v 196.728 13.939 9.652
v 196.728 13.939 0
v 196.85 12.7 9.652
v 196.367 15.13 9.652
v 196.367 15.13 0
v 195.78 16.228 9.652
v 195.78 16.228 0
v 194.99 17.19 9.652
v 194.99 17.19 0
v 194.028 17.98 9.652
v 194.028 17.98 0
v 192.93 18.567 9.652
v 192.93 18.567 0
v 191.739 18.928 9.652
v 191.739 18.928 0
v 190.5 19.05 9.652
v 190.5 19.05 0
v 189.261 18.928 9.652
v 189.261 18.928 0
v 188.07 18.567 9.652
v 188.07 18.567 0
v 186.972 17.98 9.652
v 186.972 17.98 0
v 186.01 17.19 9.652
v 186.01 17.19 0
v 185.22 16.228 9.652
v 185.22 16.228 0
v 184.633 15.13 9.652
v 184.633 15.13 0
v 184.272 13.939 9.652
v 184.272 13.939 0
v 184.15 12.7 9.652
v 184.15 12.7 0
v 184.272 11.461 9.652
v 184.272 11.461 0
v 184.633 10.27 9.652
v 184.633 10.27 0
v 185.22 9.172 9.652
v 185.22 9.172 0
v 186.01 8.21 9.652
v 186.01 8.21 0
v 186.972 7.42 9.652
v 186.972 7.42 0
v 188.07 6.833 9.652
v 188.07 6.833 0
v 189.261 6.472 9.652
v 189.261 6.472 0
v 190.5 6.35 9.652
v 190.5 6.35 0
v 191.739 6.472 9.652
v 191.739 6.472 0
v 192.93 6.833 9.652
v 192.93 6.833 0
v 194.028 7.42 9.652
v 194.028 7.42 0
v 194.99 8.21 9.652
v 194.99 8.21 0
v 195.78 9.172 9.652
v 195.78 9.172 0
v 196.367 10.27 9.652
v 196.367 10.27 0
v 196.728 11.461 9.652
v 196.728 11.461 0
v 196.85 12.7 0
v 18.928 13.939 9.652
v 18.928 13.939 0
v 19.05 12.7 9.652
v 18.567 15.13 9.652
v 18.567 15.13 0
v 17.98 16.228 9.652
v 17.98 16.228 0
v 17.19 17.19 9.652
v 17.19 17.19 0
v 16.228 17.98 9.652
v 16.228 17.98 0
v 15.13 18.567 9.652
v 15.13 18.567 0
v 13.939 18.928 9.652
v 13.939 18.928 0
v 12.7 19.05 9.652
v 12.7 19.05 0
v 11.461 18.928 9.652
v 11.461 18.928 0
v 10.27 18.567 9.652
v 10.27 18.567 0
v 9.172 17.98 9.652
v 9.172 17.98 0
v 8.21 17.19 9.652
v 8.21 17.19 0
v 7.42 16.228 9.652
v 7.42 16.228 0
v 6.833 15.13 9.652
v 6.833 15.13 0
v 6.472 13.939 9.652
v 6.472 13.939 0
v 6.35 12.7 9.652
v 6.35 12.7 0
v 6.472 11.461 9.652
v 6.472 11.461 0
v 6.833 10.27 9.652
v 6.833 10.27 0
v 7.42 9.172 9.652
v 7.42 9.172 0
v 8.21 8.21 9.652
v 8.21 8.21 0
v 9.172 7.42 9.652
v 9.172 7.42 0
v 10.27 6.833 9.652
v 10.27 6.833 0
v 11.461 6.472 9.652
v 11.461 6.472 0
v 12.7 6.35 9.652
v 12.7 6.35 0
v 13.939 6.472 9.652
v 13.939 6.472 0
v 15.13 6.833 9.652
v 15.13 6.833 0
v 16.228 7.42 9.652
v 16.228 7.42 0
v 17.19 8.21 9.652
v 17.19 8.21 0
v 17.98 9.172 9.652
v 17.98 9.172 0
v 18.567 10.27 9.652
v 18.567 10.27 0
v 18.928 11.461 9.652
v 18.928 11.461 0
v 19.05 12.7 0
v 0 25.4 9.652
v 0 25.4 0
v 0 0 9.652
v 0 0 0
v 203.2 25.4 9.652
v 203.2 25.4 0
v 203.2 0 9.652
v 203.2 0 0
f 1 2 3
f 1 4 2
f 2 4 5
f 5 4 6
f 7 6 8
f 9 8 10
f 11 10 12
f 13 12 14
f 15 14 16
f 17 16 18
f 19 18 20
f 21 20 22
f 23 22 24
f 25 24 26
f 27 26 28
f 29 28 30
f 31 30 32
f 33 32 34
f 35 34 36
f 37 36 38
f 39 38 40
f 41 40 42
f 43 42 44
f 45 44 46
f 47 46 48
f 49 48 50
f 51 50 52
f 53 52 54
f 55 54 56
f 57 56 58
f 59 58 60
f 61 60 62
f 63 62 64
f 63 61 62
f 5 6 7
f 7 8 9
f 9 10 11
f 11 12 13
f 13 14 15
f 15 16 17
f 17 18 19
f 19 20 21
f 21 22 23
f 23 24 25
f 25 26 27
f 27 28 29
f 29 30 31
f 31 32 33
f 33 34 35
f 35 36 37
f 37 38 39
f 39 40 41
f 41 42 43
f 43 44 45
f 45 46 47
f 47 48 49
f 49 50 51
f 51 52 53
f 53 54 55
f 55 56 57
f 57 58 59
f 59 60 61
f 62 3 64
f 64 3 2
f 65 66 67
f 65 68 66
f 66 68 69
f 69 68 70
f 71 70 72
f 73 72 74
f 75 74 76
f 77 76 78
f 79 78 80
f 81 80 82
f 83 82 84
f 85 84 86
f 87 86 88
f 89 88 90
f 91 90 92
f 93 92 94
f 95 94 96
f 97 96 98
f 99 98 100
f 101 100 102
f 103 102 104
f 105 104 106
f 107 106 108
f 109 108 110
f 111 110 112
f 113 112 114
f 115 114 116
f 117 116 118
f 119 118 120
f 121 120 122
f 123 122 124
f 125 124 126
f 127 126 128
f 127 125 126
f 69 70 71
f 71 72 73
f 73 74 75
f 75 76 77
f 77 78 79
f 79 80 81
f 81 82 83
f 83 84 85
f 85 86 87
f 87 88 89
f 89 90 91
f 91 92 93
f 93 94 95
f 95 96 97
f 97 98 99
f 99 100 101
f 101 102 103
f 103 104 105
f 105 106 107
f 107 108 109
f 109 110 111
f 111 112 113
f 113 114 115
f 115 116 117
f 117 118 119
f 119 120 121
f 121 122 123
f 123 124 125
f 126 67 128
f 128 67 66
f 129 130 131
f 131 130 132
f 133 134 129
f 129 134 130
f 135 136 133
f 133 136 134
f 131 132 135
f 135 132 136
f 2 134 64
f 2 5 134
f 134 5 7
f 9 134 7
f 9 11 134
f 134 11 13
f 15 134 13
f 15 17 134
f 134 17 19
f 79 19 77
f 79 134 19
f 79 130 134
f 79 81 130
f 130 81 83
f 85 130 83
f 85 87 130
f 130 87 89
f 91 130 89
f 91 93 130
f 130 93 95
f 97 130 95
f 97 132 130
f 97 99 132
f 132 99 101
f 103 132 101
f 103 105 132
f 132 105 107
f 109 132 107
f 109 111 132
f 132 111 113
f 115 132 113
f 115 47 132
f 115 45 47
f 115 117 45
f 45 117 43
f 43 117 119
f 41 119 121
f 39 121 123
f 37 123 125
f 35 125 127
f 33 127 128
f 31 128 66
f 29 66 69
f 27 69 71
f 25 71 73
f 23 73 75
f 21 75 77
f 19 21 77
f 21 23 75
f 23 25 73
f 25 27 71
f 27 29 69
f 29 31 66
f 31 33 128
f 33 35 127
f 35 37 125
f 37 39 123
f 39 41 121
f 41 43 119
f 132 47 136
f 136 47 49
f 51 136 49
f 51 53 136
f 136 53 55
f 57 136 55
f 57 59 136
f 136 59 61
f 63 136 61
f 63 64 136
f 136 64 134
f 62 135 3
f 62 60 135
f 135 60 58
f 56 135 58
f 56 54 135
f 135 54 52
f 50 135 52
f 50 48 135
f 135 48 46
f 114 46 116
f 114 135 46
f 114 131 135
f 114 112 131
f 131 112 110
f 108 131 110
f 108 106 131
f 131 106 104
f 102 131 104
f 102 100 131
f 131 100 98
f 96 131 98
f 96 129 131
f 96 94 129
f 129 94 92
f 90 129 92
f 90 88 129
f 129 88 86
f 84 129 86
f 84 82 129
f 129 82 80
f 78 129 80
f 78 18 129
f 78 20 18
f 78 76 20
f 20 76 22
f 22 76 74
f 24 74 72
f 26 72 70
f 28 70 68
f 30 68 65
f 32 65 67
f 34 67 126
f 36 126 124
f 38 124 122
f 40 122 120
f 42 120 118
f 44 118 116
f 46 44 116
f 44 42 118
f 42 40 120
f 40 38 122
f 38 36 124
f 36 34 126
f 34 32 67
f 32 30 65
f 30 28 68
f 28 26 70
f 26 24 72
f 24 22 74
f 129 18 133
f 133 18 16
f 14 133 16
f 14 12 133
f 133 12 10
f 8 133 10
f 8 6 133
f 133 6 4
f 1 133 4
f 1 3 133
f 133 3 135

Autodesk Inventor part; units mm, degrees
ref_plane "YZ Plane" through (0, 0, 0) normal (1, 0, 0) x (0, 1, 0)
ref_plane "XZ Plane" through (0, 0, 0) normal (0, 1, 0) x (-1, 0, 0)
ref_plane "XY Plane" through (0, 0, 0) normal (0, 0, 1) x (1, 0, 0)
sketch "Sketch1" plane through (0, 0, 0) normal (0, 0, 1) x (1, 0, 0)
  line L0 (0, 0) -> (203.2, 0)
  line L1 (203.2, 0) -> (203.2, 25.4)
  line L2 (203.2, 25.4) -> (0, 25.4)
  line L3 (0, 25.4) -> (0, 0)
  circle A0 centre (12.7, 12.7) radius 6.35
  circle A1 centre (190.5, 12.7) radius 6.35
  dimension "d0" = 203.2
  dimension "d1" = 25.4
  dimension "d2" = 12.7
  dimension "d3" = 12.7
  dimension "d4" = 12.7
  dimension "d5" = 12.7
  dimension "d9" = 12.7
  dimension "d10" = 12.7
extrude "Extrusion1" add sketch "Sketch1" along normal blind 9.652
equation "\"d2\" = 0.5 * d1"
equation "\"d3\" = d2"
equation "\"d4\" = d2"
equation "\"d5\" = d3"
properties part number "GE-12024"
